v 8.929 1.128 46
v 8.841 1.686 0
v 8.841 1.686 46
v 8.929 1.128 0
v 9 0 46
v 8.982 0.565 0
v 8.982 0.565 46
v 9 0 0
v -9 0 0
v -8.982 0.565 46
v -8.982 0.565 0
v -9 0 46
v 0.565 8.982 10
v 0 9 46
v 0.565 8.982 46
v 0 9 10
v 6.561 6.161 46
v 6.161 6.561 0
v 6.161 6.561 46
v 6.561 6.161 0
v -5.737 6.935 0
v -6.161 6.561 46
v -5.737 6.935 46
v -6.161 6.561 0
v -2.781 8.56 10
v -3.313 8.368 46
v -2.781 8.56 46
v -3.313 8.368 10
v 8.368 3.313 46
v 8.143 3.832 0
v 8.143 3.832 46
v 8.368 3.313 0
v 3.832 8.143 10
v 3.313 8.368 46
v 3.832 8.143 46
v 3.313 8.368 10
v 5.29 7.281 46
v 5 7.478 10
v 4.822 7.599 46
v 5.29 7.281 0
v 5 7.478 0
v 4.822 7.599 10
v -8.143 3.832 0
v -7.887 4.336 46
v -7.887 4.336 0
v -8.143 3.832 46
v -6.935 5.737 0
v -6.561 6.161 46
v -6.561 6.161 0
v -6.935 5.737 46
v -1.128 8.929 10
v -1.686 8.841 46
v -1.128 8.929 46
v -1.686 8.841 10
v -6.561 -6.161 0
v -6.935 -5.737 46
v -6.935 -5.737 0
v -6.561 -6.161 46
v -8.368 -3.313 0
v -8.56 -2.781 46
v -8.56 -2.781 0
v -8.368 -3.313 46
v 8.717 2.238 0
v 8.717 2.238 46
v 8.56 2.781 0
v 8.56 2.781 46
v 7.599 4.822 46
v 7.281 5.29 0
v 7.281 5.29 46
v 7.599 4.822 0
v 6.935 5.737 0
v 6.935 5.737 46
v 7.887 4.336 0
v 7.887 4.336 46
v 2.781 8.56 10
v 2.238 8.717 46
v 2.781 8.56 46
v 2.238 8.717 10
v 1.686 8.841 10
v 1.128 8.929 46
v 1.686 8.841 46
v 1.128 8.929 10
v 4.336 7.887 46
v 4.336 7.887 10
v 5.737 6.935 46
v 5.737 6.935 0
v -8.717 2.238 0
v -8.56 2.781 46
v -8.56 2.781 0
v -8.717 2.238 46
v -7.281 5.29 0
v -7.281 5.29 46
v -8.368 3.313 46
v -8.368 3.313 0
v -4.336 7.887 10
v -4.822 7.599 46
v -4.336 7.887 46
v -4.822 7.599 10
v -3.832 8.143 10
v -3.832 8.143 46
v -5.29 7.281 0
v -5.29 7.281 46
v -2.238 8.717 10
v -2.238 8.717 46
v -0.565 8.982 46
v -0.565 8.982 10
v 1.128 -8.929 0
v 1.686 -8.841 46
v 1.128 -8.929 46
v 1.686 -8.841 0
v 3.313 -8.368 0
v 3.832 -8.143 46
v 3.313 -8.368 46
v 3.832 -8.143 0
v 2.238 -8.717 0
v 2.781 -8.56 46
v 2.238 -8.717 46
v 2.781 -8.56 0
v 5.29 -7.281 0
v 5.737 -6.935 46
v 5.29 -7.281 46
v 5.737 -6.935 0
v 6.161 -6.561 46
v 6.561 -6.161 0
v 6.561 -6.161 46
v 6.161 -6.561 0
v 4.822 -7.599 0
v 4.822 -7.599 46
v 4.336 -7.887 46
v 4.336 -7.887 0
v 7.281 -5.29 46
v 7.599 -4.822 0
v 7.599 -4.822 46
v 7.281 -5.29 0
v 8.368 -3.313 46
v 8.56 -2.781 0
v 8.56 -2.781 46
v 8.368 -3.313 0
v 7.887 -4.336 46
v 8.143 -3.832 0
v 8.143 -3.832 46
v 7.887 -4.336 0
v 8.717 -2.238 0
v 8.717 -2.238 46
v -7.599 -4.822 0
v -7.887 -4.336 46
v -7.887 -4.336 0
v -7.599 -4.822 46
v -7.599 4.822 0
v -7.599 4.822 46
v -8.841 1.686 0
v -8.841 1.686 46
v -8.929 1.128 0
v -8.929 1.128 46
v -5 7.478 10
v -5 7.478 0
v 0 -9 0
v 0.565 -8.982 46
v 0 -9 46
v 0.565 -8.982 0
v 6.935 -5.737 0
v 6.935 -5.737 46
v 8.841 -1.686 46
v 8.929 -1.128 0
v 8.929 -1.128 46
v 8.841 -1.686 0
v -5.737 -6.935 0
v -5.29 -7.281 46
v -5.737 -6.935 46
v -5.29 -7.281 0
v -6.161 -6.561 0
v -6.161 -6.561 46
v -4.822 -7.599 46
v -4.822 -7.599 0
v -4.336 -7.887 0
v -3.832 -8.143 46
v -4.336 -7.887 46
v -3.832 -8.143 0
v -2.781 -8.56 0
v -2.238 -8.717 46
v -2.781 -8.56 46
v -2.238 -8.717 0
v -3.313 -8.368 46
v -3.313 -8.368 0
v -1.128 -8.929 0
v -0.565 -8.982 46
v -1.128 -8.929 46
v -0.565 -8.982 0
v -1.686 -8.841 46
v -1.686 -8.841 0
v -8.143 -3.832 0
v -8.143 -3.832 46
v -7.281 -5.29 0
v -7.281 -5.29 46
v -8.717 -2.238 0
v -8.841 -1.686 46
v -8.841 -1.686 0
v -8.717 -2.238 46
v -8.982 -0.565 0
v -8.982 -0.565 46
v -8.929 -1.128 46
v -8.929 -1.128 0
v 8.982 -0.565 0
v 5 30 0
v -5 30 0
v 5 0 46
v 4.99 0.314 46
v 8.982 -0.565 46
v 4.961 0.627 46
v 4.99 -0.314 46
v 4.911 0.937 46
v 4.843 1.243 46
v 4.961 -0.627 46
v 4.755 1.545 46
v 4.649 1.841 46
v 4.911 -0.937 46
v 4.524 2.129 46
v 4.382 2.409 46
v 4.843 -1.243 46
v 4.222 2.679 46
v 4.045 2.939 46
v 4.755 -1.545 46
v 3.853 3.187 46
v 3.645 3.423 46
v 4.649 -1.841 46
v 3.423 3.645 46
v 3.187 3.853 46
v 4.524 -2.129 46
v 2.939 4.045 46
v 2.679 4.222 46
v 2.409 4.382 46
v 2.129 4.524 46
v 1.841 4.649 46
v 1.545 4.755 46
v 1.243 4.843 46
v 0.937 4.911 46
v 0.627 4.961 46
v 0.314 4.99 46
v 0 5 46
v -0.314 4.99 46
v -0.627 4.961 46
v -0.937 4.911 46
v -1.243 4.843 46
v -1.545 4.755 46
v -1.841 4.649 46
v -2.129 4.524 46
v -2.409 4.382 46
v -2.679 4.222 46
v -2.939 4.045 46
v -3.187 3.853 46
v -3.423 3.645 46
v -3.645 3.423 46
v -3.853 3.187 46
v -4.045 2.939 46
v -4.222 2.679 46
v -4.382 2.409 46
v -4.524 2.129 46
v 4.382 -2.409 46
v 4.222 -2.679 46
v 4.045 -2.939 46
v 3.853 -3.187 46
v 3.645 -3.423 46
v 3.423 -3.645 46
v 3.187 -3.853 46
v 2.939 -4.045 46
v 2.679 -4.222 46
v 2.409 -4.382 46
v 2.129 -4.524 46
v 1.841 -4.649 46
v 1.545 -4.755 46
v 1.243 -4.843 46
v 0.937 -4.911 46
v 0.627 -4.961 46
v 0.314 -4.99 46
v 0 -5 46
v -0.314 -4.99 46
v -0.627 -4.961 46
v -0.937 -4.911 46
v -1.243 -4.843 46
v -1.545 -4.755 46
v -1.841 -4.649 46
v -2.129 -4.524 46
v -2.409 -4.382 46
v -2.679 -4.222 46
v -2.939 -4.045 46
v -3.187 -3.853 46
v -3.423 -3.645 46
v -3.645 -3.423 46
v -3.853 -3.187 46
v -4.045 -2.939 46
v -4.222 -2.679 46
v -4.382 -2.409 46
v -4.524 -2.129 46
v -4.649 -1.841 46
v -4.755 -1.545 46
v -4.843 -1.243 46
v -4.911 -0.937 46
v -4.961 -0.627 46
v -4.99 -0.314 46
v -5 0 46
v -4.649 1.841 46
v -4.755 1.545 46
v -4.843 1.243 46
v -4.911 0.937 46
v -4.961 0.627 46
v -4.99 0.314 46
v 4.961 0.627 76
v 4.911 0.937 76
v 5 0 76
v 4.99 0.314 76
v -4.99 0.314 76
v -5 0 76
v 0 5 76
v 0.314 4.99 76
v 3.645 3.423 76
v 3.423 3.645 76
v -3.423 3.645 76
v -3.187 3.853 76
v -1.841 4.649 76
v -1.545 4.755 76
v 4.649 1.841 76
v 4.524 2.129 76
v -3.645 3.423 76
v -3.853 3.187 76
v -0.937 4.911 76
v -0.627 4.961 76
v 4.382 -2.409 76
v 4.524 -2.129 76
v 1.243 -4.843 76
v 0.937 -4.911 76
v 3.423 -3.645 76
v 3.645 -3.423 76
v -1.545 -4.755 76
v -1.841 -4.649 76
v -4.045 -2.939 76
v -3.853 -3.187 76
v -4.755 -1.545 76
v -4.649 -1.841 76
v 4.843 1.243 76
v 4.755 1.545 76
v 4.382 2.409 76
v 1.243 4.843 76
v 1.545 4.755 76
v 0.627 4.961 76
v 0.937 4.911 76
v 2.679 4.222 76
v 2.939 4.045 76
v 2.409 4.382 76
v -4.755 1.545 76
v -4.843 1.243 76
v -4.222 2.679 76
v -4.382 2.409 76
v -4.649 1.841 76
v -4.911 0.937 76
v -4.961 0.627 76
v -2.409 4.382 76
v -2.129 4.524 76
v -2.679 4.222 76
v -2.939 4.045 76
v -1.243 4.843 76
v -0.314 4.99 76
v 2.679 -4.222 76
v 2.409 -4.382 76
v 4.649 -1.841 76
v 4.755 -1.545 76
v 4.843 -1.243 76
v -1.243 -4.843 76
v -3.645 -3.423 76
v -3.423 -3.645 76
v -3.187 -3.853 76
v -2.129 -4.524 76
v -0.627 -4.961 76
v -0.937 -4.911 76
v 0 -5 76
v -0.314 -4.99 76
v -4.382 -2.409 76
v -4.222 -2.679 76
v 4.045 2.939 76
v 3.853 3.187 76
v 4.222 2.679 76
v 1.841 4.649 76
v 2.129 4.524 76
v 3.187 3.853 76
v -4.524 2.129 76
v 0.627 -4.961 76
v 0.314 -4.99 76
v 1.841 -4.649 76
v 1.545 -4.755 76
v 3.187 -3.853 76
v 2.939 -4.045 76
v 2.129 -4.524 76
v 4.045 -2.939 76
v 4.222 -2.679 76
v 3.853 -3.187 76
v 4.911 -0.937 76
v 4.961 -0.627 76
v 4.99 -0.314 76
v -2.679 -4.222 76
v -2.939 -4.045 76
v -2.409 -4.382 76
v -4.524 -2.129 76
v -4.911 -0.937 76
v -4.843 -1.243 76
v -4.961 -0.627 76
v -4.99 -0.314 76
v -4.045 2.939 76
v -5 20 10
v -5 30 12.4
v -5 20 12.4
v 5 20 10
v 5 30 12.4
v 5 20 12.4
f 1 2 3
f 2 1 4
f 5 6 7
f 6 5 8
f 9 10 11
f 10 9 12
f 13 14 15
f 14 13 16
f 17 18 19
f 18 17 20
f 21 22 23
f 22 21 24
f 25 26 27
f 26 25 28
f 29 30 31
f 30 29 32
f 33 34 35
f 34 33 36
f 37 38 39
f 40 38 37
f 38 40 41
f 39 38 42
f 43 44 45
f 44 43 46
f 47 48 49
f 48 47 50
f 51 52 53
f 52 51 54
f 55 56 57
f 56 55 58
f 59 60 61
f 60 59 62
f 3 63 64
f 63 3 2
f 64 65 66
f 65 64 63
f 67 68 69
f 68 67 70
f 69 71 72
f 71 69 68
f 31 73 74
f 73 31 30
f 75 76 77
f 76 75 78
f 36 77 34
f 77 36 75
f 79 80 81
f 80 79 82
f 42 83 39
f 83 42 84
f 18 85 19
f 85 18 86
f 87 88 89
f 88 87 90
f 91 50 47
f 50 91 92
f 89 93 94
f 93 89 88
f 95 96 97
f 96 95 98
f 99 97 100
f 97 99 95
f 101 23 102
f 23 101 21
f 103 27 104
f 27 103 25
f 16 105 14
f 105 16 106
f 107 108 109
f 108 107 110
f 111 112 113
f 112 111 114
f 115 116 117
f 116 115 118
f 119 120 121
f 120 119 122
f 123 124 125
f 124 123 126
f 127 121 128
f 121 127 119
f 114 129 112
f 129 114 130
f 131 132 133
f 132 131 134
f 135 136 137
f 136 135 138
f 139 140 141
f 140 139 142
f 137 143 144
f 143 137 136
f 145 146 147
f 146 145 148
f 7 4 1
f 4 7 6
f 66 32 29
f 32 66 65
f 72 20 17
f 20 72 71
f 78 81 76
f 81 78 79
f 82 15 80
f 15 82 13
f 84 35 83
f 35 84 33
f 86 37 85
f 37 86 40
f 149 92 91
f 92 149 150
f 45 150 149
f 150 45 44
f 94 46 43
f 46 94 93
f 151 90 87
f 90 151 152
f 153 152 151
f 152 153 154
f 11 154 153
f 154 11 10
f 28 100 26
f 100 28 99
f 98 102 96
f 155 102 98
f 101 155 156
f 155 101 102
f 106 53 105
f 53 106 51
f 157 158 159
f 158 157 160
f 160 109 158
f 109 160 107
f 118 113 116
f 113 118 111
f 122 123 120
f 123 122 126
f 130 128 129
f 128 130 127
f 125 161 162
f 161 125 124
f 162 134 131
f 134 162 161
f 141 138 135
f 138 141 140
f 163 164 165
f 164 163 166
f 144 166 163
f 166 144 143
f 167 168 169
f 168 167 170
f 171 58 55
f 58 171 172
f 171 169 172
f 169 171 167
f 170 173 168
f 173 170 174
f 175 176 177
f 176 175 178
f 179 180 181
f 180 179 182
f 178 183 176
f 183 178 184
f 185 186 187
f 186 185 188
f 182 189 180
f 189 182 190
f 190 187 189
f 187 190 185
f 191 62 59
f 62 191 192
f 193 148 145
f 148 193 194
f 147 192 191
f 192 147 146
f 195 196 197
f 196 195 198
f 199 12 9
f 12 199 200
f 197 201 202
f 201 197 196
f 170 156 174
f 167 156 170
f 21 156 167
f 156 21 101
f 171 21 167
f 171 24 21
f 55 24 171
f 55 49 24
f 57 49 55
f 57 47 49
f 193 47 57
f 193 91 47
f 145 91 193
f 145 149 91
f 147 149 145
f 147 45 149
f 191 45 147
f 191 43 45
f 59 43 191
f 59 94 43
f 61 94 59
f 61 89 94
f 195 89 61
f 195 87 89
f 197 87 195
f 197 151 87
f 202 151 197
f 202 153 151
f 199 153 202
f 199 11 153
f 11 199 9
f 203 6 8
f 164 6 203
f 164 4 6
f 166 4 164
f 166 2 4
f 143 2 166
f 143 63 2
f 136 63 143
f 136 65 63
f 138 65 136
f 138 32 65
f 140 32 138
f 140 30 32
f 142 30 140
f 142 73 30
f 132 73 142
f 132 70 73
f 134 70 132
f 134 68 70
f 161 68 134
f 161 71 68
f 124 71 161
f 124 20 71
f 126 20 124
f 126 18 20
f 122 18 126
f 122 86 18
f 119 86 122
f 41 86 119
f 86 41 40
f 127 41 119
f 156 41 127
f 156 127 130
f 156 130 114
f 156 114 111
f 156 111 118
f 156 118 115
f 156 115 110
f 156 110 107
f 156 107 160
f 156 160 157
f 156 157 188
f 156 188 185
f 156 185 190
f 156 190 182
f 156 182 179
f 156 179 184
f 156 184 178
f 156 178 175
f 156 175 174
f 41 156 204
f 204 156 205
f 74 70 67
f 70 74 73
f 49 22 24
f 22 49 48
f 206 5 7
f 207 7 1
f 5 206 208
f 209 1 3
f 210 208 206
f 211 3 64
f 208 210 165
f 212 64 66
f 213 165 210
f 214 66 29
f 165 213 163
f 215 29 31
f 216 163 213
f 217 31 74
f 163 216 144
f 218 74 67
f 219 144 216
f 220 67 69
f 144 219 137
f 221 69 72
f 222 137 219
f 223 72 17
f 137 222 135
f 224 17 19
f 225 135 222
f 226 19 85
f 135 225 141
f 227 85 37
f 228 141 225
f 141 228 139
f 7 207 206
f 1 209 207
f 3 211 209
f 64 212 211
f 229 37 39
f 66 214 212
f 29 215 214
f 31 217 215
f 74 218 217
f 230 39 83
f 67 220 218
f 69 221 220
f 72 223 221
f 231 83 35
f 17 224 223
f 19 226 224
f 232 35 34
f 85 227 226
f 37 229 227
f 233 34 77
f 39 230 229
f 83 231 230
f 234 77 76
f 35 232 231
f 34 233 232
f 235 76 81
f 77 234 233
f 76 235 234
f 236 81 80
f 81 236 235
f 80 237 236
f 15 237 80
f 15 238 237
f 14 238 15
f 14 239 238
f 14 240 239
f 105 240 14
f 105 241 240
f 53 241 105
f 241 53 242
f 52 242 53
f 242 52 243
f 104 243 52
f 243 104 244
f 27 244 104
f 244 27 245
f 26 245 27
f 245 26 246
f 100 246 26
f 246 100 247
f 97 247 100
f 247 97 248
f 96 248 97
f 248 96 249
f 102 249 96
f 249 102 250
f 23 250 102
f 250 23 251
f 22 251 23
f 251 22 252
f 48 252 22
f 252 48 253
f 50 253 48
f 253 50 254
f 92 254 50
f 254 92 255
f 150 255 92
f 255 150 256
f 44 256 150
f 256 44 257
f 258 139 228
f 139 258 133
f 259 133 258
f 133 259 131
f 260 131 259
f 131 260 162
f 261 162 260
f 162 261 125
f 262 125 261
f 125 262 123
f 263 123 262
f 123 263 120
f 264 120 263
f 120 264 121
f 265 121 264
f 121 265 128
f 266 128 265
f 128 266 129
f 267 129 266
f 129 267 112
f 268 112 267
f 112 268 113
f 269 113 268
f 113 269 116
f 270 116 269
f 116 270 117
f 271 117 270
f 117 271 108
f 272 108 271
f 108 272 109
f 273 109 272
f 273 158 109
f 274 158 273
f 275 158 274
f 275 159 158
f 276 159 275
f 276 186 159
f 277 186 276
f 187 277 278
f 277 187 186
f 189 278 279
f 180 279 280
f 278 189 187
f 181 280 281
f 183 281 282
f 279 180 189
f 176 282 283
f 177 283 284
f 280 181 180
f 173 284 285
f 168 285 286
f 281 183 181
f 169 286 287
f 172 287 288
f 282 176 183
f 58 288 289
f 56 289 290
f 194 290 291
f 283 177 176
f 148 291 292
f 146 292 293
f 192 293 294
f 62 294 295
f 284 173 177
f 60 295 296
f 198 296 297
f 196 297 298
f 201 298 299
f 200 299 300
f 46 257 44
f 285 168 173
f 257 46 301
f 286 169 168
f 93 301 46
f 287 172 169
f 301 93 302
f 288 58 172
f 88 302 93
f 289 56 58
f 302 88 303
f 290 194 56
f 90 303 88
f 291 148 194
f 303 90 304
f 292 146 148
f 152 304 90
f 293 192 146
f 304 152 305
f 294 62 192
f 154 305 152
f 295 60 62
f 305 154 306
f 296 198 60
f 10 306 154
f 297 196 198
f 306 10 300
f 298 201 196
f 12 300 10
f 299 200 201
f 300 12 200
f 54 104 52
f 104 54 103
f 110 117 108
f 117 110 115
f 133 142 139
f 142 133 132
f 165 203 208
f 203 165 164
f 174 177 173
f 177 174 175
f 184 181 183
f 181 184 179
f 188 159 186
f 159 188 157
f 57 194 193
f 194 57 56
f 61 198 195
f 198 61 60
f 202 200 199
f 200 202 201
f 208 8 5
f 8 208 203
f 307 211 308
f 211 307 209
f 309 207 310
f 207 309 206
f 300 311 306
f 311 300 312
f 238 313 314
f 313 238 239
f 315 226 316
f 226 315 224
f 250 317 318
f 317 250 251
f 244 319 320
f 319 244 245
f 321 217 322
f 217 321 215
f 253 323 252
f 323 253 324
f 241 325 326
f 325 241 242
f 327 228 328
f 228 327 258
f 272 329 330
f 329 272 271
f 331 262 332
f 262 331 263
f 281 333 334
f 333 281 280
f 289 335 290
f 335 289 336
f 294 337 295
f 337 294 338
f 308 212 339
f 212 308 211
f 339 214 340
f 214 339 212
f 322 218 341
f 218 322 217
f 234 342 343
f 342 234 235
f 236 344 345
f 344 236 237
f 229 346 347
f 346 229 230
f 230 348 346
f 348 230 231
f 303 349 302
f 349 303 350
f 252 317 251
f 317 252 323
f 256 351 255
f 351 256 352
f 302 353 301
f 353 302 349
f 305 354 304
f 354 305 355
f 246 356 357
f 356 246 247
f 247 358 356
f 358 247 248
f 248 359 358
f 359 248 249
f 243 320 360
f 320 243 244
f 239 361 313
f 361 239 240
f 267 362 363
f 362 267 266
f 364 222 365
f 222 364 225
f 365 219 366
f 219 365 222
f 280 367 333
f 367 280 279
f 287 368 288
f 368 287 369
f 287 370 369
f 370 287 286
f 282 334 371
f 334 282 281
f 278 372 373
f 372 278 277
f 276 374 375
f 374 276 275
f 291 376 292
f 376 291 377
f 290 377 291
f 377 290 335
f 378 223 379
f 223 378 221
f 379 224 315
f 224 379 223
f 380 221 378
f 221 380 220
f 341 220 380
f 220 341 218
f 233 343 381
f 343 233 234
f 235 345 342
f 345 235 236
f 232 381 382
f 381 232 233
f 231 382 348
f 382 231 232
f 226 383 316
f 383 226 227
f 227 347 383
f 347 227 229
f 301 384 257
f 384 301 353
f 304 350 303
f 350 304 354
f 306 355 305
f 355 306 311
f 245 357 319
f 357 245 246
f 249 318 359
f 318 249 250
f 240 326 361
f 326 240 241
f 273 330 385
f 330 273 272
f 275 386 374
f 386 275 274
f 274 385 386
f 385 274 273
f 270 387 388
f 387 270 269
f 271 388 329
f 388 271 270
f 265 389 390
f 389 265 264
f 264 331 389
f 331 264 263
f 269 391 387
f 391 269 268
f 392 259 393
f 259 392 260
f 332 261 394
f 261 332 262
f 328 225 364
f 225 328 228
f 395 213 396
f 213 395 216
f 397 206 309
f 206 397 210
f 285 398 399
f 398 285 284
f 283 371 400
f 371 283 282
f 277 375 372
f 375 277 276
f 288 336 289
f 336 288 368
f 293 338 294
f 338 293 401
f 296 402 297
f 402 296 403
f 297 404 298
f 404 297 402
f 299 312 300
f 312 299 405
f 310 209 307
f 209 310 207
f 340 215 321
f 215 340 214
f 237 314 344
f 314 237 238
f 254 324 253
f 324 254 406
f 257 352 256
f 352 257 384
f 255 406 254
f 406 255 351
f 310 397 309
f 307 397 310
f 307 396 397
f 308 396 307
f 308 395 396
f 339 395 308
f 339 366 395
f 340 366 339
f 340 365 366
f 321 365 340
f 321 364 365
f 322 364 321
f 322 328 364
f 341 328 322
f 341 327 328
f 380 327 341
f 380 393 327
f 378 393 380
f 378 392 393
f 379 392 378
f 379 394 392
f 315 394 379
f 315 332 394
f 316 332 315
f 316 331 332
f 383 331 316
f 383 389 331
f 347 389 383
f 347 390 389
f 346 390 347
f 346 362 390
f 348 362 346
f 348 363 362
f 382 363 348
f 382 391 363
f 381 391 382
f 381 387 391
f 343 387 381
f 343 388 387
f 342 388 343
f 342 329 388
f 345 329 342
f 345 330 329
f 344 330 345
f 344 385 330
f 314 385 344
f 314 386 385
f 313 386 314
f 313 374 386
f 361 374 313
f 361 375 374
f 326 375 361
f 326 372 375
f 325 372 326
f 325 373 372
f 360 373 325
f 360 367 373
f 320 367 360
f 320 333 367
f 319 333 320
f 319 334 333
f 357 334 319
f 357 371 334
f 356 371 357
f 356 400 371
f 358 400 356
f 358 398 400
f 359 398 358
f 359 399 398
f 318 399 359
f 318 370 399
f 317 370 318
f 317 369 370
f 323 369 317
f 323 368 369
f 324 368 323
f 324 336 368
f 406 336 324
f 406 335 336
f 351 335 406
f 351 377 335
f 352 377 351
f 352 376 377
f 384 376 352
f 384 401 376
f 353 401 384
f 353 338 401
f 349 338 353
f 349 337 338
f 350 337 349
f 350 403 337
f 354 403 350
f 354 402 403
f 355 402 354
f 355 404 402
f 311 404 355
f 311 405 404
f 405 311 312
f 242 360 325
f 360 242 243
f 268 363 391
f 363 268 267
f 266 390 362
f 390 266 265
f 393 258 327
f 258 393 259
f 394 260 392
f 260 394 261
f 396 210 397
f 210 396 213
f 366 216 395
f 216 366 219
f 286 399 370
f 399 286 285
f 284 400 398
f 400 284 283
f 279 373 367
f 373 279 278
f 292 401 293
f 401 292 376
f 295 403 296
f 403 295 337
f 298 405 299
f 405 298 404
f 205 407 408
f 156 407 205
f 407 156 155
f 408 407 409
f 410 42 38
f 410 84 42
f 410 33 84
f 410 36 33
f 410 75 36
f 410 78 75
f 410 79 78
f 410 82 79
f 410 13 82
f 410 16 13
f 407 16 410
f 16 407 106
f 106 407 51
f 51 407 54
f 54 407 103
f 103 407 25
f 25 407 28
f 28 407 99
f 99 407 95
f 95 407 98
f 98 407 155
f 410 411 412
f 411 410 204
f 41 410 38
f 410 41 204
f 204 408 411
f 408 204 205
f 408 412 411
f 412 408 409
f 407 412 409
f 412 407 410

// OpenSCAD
//winding tool for Errel fruitmachine part:  coin slide coil.  (http://www.topgokkasten.nl/slide-errel/)
//(c)edwin@datux.nl

wand=1.5;
binnendiameter=18;
lengte=36;

//past binnen in coil + ruimte voor steun
cylinder(d=binnendiameter, h=lengte+10, $fn=100);

//past in accuboor
translate([0,0,lengte+10])
{
    cylinder(d=10, h=30, $fn=100);
}

//achtersteun
translate([-5,0,0])
{
    cube([10,30,10],false);
}
translate([-5,20,10])
{
    cube([10,10,3*1.6/2],false);
}
